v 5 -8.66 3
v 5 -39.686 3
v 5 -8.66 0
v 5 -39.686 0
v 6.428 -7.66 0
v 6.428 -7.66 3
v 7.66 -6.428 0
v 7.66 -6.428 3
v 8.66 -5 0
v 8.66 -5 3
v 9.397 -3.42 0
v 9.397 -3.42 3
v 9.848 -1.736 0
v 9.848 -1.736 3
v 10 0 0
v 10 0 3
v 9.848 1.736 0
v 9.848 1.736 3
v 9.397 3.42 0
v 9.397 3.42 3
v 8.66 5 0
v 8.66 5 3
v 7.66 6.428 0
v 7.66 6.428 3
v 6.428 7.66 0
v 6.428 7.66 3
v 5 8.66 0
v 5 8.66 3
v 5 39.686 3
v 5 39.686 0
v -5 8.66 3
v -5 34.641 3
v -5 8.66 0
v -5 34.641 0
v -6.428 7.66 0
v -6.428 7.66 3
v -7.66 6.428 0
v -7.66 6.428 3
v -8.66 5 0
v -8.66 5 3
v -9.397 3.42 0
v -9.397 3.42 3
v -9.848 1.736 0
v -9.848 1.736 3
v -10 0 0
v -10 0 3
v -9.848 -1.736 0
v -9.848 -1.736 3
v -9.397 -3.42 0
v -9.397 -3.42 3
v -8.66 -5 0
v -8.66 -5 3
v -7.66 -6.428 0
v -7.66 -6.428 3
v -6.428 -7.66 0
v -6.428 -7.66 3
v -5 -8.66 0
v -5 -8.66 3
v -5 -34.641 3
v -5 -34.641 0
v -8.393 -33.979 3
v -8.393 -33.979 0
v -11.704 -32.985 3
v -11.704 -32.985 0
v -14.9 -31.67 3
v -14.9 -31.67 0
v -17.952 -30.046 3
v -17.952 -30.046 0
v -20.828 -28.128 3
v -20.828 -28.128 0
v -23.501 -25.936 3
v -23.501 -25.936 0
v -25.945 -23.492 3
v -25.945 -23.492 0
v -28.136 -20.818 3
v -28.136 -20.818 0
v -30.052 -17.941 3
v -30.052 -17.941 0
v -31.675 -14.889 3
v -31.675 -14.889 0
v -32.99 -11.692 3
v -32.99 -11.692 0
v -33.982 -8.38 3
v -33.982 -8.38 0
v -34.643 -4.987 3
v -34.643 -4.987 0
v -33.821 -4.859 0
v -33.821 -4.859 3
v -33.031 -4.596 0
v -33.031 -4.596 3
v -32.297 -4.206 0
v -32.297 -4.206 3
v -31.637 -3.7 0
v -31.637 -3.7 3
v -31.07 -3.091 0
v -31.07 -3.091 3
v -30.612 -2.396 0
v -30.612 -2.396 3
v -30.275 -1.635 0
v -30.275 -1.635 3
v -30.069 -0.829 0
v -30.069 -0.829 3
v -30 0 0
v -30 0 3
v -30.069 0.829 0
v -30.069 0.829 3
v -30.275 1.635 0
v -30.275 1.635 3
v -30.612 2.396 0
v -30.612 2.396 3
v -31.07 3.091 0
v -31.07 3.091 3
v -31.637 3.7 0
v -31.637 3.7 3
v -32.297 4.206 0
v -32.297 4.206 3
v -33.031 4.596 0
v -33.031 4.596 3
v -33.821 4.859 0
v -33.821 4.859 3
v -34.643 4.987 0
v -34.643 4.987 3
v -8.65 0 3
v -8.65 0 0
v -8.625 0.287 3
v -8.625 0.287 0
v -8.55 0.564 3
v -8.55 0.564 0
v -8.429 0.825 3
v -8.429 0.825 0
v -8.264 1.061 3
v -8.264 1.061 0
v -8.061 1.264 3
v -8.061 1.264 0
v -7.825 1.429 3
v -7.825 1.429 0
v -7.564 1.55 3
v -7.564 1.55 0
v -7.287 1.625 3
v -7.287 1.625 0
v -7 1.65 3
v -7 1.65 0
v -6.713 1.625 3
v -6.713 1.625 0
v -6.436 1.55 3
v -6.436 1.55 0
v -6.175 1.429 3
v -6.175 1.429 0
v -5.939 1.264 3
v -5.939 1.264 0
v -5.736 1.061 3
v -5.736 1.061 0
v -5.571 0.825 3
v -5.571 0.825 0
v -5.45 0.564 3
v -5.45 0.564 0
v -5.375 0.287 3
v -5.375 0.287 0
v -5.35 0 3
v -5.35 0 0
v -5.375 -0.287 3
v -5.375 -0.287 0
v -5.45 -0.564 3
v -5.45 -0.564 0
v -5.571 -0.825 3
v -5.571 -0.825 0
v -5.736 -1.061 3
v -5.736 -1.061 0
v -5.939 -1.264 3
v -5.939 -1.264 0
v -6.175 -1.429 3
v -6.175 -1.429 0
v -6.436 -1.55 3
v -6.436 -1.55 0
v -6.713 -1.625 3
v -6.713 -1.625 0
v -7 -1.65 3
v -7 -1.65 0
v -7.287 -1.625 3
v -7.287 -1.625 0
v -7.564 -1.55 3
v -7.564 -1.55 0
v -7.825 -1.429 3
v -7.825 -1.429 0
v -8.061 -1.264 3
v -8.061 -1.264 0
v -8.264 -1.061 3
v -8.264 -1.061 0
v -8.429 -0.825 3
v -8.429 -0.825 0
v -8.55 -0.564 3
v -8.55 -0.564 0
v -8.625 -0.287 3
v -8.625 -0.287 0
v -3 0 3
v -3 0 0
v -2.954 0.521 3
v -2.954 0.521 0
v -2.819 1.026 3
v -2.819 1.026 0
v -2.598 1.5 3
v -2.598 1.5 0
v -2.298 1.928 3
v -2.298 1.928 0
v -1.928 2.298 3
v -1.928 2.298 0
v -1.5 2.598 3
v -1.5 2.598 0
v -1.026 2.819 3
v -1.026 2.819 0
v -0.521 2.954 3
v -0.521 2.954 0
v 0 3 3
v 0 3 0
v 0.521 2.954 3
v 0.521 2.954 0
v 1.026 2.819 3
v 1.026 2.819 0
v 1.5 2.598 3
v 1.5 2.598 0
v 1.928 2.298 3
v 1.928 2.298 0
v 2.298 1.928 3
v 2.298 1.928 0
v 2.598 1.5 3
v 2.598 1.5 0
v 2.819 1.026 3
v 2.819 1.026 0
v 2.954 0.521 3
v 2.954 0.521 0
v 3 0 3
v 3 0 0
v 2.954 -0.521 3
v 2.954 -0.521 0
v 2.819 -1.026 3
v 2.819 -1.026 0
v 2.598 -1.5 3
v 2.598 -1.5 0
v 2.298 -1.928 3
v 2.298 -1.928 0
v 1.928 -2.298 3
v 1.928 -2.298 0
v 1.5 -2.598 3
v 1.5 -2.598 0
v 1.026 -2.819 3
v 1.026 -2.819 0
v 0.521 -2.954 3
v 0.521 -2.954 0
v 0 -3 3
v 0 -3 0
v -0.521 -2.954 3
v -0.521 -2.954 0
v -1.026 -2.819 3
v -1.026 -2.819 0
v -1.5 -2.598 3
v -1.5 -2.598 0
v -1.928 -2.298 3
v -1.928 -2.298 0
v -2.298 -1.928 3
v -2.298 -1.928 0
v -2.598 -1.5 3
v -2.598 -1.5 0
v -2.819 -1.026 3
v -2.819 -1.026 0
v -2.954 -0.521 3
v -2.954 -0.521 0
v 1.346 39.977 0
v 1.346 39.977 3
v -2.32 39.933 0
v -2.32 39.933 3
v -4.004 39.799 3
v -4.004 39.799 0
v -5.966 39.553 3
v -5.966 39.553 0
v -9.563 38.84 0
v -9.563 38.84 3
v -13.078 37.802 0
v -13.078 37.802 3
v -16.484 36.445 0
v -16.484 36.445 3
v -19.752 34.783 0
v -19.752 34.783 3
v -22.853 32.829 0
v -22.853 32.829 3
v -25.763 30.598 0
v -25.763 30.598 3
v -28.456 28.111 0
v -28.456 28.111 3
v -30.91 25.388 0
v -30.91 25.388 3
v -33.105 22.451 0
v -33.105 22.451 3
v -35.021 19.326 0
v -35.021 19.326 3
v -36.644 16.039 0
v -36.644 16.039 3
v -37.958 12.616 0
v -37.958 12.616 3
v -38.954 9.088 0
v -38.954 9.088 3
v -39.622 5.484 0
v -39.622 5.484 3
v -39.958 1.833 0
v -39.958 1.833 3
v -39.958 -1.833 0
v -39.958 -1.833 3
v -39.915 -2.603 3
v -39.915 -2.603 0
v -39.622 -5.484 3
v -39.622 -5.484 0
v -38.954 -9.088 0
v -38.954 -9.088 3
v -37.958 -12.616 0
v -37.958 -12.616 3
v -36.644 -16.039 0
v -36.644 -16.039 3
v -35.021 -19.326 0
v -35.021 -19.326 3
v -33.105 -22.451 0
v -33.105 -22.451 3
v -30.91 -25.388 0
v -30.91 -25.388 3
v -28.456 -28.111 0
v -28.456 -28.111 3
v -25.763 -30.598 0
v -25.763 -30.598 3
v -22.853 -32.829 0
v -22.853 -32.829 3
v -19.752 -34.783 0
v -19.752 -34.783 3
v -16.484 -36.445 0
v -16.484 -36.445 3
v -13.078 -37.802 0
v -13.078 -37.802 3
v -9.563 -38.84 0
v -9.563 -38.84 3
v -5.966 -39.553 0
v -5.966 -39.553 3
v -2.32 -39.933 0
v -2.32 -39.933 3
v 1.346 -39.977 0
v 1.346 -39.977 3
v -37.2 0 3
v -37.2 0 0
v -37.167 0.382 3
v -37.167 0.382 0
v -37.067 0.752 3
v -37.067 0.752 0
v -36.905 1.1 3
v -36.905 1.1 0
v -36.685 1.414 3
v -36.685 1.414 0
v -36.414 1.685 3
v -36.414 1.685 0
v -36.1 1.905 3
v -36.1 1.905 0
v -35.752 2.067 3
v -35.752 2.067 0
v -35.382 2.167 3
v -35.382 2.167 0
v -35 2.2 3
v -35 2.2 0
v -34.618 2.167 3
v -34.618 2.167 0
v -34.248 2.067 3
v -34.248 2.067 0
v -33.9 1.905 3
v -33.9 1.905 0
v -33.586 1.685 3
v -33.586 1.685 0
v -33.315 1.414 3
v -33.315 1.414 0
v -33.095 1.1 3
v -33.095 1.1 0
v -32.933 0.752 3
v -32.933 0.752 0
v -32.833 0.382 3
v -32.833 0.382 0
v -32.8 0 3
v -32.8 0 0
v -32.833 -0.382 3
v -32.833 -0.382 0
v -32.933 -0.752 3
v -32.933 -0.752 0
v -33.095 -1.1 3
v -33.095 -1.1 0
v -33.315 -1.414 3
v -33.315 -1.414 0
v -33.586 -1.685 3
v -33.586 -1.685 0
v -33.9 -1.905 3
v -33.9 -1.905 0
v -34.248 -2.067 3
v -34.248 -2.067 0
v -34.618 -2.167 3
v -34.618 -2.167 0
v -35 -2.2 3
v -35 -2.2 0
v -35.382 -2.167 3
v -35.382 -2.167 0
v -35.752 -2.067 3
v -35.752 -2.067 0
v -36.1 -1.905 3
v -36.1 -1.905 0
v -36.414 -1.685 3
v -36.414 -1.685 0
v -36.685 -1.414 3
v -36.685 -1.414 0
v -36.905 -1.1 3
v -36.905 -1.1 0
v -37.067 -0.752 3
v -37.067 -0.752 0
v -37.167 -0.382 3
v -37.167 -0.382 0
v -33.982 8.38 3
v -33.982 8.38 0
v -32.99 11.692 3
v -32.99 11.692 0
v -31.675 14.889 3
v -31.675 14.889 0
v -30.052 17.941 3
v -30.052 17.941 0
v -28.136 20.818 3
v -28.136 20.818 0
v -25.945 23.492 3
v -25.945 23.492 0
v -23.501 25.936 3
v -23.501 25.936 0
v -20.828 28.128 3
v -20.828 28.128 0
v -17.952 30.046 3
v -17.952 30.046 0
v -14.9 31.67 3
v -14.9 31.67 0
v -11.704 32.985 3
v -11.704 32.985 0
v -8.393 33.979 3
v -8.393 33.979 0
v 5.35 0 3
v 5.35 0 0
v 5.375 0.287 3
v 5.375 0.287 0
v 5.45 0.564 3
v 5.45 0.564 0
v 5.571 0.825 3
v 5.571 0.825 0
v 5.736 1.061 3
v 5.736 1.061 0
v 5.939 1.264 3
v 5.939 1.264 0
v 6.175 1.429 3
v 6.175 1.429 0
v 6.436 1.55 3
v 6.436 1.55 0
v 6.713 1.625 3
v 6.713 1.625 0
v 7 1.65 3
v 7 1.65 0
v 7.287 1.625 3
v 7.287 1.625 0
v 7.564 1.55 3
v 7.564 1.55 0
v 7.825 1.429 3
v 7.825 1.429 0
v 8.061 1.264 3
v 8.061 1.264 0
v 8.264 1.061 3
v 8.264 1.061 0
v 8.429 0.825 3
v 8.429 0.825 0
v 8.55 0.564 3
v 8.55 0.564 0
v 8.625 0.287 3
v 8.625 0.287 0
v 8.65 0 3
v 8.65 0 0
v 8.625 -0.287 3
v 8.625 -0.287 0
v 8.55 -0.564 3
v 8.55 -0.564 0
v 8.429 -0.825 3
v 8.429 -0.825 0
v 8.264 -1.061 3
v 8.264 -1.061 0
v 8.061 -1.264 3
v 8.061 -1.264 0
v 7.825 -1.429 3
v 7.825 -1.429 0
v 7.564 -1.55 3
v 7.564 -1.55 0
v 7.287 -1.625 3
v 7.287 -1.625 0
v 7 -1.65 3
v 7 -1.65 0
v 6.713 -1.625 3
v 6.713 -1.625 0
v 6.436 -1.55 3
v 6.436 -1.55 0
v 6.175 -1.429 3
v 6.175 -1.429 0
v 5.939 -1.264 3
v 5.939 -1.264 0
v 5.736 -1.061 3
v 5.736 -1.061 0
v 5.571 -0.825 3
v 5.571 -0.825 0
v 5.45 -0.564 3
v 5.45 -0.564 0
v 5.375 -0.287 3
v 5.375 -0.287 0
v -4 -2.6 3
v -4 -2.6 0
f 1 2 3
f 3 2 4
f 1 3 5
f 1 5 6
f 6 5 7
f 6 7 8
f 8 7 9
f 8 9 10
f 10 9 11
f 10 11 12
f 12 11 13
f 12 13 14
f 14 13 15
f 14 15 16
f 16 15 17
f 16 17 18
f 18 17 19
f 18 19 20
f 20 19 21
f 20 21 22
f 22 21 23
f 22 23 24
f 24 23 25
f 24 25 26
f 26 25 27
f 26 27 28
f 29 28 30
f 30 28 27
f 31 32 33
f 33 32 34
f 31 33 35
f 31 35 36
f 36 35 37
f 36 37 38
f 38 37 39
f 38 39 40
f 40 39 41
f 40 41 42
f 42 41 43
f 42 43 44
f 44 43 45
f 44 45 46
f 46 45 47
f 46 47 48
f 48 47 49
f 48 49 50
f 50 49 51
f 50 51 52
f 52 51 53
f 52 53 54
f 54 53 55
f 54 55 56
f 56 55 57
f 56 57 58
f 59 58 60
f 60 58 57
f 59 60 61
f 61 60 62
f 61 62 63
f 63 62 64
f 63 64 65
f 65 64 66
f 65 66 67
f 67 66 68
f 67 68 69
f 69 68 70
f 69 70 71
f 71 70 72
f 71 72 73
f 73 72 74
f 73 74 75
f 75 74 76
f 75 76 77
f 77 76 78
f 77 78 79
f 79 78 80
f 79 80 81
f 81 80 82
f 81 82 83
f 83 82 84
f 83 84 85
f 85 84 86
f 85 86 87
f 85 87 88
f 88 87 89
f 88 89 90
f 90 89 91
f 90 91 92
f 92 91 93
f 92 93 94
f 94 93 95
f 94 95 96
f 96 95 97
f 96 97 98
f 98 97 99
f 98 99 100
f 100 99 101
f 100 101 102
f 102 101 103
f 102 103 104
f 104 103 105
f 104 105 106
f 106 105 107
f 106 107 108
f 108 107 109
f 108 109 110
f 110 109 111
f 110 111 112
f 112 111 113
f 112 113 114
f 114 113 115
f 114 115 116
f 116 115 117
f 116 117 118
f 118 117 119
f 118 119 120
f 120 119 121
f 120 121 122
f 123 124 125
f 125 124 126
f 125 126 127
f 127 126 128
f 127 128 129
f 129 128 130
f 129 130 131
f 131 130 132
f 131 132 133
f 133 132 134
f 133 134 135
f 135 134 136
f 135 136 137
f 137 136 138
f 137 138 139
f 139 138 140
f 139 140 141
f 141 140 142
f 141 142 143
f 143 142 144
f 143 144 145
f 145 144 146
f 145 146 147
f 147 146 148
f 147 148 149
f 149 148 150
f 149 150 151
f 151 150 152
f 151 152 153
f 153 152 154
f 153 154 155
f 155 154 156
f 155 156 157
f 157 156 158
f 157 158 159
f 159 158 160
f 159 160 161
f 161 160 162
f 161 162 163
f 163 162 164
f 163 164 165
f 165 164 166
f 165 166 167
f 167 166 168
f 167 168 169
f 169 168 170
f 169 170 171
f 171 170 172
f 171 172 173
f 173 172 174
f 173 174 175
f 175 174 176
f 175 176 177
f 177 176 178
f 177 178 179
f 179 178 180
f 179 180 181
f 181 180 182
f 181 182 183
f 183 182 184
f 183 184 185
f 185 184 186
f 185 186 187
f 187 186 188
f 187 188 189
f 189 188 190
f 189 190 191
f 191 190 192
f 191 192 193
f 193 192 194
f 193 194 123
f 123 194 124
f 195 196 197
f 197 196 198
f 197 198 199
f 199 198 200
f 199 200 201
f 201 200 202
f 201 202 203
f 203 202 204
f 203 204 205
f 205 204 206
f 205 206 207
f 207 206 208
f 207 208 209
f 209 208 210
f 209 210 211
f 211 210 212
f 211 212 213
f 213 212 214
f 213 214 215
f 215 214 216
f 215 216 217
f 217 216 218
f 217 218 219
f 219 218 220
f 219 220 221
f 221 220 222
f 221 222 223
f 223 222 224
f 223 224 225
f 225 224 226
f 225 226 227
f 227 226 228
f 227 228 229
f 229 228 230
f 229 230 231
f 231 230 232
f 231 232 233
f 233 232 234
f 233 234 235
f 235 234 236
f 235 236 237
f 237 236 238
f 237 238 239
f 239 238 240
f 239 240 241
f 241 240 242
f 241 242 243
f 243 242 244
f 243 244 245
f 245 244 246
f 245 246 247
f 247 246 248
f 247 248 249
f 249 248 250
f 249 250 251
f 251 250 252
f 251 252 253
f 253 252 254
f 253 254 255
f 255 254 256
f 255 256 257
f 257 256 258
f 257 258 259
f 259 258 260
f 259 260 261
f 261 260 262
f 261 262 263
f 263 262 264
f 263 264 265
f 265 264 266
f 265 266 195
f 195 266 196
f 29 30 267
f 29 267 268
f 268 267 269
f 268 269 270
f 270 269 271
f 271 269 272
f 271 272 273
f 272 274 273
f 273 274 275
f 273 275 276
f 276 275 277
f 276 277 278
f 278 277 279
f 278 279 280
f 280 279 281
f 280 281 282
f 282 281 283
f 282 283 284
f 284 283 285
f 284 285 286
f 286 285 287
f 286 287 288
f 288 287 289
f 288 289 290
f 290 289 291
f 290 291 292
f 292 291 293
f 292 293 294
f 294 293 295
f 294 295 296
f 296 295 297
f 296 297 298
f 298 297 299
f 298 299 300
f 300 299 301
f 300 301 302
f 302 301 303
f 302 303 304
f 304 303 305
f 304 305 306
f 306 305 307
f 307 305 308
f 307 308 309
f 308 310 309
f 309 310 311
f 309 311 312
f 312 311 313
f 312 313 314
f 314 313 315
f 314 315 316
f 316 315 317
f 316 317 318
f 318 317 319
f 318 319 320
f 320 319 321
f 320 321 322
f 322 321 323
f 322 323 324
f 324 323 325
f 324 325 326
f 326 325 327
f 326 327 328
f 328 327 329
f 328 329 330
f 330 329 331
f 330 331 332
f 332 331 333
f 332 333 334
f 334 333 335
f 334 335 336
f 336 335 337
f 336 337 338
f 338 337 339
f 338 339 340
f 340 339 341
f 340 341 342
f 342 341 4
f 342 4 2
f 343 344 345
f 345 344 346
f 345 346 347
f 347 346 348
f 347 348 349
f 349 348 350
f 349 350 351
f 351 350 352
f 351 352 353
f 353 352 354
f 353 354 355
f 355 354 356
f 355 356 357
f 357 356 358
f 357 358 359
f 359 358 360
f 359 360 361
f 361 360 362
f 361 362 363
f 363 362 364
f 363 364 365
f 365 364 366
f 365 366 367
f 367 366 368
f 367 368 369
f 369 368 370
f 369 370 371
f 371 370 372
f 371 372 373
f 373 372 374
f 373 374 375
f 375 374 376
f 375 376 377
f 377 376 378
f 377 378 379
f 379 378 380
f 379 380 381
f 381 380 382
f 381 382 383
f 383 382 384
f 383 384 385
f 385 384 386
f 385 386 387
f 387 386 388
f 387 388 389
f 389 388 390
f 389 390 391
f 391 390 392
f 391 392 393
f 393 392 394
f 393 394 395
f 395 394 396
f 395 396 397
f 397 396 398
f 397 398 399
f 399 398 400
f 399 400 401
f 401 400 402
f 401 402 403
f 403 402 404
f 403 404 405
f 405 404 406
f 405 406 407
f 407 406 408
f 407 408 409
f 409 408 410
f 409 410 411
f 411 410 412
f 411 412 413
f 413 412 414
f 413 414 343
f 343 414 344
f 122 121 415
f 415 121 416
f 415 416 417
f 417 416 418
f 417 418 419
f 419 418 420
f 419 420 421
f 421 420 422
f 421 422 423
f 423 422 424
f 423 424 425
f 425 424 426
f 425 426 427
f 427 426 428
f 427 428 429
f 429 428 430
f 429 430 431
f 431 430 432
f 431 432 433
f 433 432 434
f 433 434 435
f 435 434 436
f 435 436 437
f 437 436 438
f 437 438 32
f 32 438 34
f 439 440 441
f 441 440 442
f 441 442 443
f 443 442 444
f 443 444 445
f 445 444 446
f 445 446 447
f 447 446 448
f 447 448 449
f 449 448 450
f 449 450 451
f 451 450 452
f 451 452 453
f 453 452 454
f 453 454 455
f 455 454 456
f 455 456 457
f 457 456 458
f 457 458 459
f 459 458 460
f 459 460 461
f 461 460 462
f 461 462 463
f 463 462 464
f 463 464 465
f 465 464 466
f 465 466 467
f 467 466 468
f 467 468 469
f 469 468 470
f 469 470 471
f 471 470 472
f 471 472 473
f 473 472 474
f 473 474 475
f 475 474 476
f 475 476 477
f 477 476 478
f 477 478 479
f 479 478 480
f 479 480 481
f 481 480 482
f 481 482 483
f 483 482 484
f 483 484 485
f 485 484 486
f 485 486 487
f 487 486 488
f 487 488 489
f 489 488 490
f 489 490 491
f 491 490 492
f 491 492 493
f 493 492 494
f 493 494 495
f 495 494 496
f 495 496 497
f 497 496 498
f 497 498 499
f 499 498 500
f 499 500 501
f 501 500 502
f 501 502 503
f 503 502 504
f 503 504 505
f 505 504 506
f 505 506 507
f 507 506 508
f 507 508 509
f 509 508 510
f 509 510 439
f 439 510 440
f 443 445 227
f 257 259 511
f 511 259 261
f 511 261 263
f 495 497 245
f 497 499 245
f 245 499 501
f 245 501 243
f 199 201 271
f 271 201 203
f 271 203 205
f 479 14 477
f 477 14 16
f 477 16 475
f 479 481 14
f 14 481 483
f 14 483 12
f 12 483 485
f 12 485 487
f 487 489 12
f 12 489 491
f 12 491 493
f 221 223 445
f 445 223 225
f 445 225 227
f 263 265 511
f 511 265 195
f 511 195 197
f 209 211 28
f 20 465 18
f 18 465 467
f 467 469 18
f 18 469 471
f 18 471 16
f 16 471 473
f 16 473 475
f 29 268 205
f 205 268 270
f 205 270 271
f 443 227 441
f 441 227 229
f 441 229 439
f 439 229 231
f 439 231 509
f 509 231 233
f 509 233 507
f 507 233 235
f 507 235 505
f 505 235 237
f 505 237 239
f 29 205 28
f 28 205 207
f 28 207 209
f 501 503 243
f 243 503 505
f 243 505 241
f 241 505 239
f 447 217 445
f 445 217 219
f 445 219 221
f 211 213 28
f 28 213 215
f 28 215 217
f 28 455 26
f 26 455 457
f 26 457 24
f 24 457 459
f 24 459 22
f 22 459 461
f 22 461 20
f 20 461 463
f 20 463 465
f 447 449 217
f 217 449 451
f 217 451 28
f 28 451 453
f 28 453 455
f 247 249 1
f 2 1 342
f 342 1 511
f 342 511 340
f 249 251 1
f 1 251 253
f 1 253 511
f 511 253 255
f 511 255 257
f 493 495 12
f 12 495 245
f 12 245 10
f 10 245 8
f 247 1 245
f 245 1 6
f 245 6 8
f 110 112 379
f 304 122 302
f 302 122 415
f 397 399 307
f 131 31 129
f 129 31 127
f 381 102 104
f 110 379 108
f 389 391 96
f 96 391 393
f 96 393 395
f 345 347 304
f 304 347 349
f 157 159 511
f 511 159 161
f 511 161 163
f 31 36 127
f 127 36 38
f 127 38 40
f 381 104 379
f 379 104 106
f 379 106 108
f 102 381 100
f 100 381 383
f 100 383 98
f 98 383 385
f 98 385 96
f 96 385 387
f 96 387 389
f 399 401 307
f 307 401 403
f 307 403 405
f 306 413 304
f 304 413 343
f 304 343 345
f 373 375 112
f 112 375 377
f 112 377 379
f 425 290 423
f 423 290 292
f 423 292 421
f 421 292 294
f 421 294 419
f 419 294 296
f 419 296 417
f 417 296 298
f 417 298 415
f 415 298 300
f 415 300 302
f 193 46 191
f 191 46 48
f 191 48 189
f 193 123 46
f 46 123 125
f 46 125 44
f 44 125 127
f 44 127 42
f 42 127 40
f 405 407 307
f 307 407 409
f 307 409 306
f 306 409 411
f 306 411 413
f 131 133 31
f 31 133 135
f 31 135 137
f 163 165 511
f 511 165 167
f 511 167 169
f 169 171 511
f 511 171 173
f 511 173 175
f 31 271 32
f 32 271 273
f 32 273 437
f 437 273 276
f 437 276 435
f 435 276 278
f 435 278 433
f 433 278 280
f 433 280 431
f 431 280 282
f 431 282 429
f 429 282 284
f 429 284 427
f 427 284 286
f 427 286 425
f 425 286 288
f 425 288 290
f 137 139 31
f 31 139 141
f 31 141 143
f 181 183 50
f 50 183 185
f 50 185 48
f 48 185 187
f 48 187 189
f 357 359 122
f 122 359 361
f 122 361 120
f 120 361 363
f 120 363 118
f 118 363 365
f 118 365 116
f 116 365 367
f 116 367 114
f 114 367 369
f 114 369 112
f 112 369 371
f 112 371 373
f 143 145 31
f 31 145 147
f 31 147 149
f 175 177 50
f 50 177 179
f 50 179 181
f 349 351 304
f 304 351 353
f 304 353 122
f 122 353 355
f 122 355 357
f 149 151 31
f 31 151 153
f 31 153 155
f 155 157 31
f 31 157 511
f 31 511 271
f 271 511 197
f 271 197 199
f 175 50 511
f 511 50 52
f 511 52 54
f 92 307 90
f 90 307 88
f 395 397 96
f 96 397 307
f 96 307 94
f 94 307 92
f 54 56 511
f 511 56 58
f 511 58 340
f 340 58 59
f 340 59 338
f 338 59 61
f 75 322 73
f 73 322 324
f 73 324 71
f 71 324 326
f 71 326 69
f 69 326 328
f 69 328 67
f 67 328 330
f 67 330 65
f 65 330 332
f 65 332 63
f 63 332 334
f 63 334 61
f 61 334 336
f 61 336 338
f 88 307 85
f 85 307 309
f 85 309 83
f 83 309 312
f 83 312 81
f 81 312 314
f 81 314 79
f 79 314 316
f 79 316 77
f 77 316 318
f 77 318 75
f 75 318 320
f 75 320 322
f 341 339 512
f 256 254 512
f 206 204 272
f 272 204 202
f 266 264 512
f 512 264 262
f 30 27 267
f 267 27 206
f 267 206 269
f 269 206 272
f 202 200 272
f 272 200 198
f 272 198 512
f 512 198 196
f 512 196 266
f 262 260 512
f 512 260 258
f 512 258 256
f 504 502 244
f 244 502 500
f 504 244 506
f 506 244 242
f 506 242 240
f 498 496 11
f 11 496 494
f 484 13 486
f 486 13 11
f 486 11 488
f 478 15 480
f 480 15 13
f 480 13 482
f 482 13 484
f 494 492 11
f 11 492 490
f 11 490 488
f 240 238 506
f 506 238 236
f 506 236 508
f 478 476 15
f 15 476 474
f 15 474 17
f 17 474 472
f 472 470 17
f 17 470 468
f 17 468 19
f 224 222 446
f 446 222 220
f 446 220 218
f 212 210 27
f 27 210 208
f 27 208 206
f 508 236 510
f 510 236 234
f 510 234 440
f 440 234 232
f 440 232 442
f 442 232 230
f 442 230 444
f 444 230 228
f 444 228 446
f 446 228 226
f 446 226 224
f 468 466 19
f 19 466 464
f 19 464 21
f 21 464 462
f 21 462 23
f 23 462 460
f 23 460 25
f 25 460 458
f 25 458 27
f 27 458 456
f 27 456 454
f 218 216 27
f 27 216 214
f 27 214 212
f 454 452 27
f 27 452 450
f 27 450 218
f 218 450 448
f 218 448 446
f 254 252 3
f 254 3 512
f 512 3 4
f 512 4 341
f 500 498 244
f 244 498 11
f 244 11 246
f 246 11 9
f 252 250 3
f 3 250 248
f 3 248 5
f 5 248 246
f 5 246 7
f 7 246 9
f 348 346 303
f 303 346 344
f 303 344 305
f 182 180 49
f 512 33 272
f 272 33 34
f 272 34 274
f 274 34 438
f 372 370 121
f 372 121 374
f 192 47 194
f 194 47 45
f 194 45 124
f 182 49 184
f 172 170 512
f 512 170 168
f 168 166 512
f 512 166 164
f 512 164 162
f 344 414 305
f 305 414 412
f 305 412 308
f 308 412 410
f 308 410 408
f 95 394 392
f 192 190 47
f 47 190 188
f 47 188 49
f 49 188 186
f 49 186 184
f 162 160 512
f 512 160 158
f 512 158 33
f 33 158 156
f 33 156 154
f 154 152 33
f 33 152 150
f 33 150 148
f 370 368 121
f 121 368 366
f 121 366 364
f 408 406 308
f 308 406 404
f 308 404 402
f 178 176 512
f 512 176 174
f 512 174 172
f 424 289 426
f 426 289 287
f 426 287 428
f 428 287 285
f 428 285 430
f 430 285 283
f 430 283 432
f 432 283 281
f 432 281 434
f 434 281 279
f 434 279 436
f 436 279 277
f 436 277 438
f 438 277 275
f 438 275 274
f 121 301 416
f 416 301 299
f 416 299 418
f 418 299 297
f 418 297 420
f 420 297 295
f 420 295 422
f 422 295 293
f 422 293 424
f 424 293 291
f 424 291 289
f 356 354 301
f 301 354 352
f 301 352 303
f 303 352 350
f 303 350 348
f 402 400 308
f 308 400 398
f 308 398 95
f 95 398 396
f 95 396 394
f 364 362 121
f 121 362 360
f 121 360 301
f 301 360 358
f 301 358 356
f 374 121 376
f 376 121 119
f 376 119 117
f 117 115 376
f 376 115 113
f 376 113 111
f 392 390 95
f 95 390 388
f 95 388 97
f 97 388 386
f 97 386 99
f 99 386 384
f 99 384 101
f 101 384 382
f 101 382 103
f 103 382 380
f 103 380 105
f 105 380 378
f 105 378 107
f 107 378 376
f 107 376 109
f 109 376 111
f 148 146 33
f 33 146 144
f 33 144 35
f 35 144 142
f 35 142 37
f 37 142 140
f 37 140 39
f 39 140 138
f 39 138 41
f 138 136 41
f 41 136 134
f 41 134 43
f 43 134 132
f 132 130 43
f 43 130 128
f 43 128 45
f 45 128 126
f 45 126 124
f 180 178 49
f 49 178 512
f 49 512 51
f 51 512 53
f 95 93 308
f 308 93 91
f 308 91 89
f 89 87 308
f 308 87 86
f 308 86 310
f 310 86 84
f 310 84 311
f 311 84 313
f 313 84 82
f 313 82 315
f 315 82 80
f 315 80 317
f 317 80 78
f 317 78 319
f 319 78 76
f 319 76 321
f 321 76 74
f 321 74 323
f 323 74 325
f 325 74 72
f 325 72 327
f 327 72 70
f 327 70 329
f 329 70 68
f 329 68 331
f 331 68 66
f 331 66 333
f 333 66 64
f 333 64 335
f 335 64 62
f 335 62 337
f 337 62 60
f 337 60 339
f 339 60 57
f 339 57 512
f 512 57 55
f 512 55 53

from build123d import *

# Parameters (mm, degrees)
SKETCH1_R           = 40
SKETCH1_R_2         = 3
SKETCH1_R_3         = 1.65
SKETCH1_R_4         = 2.2
BOSS_EXTRUDE1_DEPTH = 3
CUT_EXTRUDE1_DEPTH  = 10


with BuildPart() as part:
    # Sketch1 → Boss-Extrude1 (new body)
    with BuildSketch(Plane.XY):
        Circle(SKETCH1_R)
        with BuildLine():
            Line((5, -34.641016151), (5, -8.660254038))
            ThreePointArc((5, -8.660254038), (10, 0), (5, 8.660254038))
            Line((5, 8.660254038), (5, 34.641016151))
            ThreePointArc((5, 34.641016151), (35, 0), (5, -34.641016151))
        make_face(mode=Mode.SUBTRACT)
        with BuildLine():
            Line((-5, 34.641016151), (-5, 8.660254038))
            ThreePointArc((-5, 8.660254038), (-10, 0), (-5, -8.660254038))
            Line((-5, -8.660254038), (-5, -34.641016151))
            ThreePointArc((-5, -34.641016151), (-24.753298969, -24.744174873), (-34.642857143, -4.987228587))
            ThreePointArc((-34.642857143, -4.987228587), (-30, 0), (-34.642857143, 4.987228587))
            ThreePointArc((-34.642857143, 4.987228587), (-24.753298969, 24.744174873), (-5, 34.641016151))
        make_face(mode=Mode.SUBTRACT)
        Circle(SKETCH1_R_2, mode=Mode.SUBTRACT)
        with Locations((-7, 0)):
            Circle(SKETCH1_R_3, mode=Mode.SUBTRACT)
        with Locations((7, 0)):
            Circle(SKETCH1_R_3, mode=Mode.SUBTRACT)
        with Locations((-35, 0)):
            Circle(SKETCH1_R_4, mode=Mode.SUBTRACT)
    extrude(amount=BOSS_EXTRUDE1_DEPTH)

    # Sketch3 → Cut-Extrude1 (cut)
    with BuildSketch(Plane.XY.offset(3)):
        Polygon((5, 39.686269666), (5, 8.660254038), (14.289111203, 8.660254038), (14.289111203, -8.660254038), (5, -8.660254038), (5, -39.686269666), (45, -39.686269666), (45, 39.686269666), align=None)
    extrude(amount=-CUT_EXTRUDE1_DEPTH, mode=Mode.SUBTRACT)


solid = part.part
